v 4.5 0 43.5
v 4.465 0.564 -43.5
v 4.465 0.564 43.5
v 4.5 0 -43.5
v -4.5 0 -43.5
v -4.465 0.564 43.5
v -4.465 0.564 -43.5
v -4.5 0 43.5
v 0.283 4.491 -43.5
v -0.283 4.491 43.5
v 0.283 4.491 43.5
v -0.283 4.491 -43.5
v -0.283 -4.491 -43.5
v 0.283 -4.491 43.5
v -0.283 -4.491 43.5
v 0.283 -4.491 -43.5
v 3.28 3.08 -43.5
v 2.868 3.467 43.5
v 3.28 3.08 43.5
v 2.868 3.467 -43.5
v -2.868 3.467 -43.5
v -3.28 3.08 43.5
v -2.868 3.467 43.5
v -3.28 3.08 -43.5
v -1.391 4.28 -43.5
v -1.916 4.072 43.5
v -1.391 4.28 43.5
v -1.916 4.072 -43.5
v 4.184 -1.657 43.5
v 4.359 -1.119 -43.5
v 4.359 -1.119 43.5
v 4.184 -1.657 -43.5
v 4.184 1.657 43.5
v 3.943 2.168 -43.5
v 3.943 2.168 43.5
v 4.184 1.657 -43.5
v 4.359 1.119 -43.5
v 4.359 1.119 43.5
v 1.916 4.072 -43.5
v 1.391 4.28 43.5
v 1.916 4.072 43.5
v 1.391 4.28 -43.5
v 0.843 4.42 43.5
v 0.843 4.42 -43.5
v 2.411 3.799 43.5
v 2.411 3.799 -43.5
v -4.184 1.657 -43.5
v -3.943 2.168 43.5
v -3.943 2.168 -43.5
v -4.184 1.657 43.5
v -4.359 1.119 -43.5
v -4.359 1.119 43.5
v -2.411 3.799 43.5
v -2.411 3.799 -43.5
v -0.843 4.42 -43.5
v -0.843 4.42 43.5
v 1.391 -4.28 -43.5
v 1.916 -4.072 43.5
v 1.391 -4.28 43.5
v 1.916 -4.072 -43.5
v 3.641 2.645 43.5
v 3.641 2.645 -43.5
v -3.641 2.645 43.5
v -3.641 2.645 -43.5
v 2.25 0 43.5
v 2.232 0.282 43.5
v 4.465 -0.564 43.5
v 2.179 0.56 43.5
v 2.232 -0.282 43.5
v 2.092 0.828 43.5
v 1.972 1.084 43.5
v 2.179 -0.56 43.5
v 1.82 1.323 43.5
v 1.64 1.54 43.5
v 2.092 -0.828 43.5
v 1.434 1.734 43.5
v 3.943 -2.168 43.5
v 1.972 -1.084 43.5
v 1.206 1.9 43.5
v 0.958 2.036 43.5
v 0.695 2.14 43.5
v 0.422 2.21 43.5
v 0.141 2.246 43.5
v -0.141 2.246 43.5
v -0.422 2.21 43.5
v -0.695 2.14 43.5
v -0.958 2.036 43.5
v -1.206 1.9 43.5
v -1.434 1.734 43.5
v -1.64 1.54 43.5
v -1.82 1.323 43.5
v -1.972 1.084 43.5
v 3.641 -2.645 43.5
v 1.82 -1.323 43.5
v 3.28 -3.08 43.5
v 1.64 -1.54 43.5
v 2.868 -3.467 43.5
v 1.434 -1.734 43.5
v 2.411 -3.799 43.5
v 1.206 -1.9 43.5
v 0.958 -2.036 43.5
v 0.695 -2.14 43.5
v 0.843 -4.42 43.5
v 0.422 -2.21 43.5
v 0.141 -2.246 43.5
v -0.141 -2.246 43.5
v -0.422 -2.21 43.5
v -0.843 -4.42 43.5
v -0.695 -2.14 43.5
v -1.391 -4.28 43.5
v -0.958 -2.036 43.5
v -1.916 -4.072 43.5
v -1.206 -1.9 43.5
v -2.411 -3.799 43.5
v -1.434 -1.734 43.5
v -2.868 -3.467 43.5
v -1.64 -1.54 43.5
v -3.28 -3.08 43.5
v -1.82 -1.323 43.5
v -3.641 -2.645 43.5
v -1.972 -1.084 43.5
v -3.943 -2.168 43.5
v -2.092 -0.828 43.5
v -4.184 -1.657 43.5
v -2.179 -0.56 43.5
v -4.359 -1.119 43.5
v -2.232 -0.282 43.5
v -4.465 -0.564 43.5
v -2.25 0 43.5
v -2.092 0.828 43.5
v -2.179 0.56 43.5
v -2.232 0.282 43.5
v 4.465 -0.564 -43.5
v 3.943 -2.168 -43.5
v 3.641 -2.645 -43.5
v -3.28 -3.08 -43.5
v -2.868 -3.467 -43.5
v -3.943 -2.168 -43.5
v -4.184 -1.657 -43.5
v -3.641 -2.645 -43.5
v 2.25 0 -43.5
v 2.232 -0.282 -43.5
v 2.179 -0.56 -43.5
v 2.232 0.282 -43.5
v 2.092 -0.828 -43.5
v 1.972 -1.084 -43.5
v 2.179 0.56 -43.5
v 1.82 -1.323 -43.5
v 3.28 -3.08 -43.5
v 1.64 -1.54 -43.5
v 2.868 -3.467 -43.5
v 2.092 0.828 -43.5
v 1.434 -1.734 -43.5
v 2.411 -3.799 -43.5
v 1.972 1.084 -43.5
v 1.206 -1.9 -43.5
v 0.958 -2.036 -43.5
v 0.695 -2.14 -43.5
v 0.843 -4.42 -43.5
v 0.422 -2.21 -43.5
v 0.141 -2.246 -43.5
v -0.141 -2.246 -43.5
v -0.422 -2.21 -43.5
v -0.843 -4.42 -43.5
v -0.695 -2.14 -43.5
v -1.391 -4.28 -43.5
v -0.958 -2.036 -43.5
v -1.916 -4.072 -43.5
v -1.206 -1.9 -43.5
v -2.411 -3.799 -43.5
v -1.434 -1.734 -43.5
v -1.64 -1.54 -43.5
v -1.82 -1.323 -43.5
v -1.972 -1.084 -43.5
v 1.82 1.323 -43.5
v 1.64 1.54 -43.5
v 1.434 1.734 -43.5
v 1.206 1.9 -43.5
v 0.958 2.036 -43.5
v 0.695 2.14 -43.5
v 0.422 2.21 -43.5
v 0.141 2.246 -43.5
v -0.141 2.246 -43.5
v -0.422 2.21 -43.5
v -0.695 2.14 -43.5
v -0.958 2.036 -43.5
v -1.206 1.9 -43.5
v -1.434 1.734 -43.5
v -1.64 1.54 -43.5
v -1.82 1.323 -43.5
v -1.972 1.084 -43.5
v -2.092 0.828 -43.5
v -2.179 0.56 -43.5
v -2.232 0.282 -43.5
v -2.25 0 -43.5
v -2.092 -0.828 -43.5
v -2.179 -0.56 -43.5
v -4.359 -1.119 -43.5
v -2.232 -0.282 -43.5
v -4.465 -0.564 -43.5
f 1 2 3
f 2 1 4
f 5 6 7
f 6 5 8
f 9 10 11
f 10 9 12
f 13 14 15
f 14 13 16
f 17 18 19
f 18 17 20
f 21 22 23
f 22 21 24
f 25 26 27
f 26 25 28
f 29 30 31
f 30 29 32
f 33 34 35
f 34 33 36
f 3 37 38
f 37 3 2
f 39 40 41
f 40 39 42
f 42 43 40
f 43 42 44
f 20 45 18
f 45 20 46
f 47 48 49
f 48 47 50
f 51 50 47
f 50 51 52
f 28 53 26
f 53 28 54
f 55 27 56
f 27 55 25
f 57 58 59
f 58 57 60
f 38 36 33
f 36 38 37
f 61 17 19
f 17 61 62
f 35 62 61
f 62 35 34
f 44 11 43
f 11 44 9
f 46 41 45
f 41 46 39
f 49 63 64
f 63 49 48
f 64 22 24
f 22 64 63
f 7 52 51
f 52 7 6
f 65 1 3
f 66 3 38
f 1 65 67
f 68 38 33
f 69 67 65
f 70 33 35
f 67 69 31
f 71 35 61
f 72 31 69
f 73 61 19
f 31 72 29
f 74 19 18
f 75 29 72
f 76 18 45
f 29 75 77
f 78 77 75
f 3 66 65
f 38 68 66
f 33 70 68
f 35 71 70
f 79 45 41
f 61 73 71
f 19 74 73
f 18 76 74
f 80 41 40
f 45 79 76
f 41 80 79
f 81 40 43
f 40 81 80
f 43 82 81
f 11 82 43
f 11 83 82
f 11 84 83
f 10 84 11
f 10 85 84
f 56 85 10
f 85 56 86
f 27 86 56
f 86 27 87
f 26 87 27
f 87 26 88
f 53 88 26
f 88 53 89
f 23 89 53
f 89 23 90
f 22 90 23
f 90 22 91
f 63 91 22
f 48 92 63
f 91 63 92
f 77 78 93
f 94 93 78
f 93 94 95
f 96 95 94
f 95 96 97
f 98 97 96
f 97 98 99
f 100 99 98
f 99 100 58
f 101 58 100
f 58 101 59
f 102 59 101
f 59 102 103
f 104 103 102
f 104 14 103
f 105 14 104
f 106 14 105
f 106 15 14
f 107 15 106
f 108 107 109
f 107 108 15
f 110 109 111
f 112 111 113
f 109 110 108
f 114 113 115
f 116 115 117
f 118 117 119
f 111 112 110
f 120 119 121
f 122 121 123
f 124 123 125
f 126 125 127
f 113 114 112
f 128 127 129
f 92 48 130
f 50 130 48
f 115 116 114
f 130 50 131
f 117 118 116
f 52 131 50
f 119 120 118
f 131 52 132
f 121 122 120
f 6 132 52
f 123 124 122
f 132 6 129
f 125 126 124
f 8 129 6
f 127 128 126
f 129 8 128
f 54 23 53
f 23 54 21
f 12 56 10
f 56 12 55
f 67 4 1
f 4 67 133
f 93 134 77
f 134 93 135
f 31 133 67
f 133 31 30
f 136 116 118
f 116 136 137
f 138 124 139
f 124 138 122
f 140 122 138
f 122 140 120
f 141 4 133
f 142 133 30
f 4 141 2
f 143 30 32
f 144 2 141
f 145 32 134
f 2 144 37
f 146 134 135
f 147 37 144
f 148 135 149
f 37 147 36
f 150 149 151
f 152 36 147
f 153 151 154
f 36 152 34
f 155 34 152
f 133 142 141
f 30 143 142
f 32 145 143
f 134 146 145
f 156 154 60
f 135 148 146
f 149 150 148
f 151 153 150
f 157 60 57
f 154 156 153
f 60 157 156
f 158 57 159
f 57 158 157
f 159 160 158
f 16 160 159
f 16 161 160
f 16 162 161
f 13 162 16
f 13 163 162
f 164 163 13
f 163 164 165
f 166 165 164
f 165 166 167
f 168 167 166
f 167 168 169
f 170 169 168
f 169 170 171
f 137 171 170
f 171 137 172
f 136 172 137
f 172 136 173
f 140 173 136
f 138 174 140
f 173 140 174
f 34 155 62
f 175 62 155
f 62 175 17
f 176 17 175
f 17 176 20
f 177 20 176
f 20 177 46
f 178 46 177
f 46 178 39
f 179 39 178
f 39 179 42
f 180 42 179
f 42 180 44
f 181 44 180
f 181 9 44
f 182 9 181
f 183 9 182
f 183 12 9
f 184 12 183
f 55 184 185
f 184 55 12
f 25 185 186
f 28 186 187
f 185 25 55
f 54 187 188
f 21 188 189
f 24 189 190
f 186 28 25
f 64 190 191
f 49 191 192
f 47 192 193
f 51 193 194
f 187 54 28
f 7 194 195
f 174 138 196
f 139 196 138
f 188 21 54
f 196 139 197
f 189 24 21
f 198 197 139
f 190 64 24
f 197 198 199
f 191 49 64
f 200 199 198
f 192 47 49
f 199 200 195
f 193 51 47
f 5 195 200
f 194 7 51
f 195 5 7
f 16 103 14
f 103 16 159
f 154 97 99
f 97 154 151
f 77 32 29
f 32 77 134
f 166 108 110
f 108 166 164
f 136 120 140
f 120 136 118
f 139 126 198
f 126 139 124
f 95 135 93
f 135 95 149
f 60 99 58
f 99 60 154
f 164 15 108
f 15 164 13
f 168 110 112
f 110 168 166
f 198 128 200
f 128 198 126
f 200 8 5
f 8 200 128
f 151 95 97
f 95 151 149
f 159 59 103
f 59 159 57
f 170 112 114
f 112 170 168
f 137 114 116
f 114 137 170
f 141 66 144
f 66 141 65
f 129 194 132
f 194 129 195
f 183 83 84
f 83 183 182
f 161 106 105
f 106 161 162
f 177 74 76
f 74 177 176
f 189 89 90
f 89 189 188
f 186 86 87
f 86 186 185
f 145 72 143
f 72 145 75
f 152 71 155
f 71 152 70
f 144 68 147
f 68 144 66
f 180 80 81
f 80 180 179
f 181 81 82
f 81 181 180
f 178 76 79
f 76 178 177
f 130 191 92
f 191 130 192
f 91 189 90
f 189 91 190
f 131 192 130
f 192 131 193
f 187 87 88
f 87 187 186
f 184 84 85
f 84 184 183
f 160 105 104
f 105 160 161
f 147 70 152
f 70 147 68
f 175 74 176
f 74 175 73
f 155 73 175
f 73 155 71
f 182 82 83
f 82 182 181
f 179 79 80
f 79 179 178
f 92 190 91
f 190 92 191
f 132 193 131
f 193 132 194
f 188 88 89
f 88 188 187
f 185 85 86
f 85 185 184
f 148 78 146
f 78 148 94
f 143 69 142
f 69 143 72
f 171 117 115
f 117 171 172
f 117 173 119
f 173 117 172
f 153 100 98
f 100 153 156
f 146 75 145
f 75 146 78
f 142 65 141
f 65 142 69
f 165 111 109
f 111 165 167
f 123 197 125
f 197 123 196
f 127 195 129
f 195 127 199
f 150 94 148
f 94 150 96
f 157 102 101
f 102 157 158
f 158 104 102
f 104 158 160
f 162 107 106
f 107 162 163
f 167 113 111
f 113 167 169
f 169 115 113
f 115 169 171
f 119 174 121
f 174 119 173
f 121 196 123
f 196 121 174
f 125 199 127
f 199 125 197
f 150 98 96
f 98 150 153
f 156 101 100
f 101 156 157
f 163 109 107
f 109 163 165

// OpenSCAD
$fn = 50;


difference() {
	union() {
		translate(v = [0, 0, -43.5000000000]) {
			cylinder(h = 87, r = 4.5000000000);
		}
	}
	union() {
		translate(v = [0, 0, -100.0000000000]) {
			cylinder(h = 200, r = 2.2500000000);
		}
	}
}
